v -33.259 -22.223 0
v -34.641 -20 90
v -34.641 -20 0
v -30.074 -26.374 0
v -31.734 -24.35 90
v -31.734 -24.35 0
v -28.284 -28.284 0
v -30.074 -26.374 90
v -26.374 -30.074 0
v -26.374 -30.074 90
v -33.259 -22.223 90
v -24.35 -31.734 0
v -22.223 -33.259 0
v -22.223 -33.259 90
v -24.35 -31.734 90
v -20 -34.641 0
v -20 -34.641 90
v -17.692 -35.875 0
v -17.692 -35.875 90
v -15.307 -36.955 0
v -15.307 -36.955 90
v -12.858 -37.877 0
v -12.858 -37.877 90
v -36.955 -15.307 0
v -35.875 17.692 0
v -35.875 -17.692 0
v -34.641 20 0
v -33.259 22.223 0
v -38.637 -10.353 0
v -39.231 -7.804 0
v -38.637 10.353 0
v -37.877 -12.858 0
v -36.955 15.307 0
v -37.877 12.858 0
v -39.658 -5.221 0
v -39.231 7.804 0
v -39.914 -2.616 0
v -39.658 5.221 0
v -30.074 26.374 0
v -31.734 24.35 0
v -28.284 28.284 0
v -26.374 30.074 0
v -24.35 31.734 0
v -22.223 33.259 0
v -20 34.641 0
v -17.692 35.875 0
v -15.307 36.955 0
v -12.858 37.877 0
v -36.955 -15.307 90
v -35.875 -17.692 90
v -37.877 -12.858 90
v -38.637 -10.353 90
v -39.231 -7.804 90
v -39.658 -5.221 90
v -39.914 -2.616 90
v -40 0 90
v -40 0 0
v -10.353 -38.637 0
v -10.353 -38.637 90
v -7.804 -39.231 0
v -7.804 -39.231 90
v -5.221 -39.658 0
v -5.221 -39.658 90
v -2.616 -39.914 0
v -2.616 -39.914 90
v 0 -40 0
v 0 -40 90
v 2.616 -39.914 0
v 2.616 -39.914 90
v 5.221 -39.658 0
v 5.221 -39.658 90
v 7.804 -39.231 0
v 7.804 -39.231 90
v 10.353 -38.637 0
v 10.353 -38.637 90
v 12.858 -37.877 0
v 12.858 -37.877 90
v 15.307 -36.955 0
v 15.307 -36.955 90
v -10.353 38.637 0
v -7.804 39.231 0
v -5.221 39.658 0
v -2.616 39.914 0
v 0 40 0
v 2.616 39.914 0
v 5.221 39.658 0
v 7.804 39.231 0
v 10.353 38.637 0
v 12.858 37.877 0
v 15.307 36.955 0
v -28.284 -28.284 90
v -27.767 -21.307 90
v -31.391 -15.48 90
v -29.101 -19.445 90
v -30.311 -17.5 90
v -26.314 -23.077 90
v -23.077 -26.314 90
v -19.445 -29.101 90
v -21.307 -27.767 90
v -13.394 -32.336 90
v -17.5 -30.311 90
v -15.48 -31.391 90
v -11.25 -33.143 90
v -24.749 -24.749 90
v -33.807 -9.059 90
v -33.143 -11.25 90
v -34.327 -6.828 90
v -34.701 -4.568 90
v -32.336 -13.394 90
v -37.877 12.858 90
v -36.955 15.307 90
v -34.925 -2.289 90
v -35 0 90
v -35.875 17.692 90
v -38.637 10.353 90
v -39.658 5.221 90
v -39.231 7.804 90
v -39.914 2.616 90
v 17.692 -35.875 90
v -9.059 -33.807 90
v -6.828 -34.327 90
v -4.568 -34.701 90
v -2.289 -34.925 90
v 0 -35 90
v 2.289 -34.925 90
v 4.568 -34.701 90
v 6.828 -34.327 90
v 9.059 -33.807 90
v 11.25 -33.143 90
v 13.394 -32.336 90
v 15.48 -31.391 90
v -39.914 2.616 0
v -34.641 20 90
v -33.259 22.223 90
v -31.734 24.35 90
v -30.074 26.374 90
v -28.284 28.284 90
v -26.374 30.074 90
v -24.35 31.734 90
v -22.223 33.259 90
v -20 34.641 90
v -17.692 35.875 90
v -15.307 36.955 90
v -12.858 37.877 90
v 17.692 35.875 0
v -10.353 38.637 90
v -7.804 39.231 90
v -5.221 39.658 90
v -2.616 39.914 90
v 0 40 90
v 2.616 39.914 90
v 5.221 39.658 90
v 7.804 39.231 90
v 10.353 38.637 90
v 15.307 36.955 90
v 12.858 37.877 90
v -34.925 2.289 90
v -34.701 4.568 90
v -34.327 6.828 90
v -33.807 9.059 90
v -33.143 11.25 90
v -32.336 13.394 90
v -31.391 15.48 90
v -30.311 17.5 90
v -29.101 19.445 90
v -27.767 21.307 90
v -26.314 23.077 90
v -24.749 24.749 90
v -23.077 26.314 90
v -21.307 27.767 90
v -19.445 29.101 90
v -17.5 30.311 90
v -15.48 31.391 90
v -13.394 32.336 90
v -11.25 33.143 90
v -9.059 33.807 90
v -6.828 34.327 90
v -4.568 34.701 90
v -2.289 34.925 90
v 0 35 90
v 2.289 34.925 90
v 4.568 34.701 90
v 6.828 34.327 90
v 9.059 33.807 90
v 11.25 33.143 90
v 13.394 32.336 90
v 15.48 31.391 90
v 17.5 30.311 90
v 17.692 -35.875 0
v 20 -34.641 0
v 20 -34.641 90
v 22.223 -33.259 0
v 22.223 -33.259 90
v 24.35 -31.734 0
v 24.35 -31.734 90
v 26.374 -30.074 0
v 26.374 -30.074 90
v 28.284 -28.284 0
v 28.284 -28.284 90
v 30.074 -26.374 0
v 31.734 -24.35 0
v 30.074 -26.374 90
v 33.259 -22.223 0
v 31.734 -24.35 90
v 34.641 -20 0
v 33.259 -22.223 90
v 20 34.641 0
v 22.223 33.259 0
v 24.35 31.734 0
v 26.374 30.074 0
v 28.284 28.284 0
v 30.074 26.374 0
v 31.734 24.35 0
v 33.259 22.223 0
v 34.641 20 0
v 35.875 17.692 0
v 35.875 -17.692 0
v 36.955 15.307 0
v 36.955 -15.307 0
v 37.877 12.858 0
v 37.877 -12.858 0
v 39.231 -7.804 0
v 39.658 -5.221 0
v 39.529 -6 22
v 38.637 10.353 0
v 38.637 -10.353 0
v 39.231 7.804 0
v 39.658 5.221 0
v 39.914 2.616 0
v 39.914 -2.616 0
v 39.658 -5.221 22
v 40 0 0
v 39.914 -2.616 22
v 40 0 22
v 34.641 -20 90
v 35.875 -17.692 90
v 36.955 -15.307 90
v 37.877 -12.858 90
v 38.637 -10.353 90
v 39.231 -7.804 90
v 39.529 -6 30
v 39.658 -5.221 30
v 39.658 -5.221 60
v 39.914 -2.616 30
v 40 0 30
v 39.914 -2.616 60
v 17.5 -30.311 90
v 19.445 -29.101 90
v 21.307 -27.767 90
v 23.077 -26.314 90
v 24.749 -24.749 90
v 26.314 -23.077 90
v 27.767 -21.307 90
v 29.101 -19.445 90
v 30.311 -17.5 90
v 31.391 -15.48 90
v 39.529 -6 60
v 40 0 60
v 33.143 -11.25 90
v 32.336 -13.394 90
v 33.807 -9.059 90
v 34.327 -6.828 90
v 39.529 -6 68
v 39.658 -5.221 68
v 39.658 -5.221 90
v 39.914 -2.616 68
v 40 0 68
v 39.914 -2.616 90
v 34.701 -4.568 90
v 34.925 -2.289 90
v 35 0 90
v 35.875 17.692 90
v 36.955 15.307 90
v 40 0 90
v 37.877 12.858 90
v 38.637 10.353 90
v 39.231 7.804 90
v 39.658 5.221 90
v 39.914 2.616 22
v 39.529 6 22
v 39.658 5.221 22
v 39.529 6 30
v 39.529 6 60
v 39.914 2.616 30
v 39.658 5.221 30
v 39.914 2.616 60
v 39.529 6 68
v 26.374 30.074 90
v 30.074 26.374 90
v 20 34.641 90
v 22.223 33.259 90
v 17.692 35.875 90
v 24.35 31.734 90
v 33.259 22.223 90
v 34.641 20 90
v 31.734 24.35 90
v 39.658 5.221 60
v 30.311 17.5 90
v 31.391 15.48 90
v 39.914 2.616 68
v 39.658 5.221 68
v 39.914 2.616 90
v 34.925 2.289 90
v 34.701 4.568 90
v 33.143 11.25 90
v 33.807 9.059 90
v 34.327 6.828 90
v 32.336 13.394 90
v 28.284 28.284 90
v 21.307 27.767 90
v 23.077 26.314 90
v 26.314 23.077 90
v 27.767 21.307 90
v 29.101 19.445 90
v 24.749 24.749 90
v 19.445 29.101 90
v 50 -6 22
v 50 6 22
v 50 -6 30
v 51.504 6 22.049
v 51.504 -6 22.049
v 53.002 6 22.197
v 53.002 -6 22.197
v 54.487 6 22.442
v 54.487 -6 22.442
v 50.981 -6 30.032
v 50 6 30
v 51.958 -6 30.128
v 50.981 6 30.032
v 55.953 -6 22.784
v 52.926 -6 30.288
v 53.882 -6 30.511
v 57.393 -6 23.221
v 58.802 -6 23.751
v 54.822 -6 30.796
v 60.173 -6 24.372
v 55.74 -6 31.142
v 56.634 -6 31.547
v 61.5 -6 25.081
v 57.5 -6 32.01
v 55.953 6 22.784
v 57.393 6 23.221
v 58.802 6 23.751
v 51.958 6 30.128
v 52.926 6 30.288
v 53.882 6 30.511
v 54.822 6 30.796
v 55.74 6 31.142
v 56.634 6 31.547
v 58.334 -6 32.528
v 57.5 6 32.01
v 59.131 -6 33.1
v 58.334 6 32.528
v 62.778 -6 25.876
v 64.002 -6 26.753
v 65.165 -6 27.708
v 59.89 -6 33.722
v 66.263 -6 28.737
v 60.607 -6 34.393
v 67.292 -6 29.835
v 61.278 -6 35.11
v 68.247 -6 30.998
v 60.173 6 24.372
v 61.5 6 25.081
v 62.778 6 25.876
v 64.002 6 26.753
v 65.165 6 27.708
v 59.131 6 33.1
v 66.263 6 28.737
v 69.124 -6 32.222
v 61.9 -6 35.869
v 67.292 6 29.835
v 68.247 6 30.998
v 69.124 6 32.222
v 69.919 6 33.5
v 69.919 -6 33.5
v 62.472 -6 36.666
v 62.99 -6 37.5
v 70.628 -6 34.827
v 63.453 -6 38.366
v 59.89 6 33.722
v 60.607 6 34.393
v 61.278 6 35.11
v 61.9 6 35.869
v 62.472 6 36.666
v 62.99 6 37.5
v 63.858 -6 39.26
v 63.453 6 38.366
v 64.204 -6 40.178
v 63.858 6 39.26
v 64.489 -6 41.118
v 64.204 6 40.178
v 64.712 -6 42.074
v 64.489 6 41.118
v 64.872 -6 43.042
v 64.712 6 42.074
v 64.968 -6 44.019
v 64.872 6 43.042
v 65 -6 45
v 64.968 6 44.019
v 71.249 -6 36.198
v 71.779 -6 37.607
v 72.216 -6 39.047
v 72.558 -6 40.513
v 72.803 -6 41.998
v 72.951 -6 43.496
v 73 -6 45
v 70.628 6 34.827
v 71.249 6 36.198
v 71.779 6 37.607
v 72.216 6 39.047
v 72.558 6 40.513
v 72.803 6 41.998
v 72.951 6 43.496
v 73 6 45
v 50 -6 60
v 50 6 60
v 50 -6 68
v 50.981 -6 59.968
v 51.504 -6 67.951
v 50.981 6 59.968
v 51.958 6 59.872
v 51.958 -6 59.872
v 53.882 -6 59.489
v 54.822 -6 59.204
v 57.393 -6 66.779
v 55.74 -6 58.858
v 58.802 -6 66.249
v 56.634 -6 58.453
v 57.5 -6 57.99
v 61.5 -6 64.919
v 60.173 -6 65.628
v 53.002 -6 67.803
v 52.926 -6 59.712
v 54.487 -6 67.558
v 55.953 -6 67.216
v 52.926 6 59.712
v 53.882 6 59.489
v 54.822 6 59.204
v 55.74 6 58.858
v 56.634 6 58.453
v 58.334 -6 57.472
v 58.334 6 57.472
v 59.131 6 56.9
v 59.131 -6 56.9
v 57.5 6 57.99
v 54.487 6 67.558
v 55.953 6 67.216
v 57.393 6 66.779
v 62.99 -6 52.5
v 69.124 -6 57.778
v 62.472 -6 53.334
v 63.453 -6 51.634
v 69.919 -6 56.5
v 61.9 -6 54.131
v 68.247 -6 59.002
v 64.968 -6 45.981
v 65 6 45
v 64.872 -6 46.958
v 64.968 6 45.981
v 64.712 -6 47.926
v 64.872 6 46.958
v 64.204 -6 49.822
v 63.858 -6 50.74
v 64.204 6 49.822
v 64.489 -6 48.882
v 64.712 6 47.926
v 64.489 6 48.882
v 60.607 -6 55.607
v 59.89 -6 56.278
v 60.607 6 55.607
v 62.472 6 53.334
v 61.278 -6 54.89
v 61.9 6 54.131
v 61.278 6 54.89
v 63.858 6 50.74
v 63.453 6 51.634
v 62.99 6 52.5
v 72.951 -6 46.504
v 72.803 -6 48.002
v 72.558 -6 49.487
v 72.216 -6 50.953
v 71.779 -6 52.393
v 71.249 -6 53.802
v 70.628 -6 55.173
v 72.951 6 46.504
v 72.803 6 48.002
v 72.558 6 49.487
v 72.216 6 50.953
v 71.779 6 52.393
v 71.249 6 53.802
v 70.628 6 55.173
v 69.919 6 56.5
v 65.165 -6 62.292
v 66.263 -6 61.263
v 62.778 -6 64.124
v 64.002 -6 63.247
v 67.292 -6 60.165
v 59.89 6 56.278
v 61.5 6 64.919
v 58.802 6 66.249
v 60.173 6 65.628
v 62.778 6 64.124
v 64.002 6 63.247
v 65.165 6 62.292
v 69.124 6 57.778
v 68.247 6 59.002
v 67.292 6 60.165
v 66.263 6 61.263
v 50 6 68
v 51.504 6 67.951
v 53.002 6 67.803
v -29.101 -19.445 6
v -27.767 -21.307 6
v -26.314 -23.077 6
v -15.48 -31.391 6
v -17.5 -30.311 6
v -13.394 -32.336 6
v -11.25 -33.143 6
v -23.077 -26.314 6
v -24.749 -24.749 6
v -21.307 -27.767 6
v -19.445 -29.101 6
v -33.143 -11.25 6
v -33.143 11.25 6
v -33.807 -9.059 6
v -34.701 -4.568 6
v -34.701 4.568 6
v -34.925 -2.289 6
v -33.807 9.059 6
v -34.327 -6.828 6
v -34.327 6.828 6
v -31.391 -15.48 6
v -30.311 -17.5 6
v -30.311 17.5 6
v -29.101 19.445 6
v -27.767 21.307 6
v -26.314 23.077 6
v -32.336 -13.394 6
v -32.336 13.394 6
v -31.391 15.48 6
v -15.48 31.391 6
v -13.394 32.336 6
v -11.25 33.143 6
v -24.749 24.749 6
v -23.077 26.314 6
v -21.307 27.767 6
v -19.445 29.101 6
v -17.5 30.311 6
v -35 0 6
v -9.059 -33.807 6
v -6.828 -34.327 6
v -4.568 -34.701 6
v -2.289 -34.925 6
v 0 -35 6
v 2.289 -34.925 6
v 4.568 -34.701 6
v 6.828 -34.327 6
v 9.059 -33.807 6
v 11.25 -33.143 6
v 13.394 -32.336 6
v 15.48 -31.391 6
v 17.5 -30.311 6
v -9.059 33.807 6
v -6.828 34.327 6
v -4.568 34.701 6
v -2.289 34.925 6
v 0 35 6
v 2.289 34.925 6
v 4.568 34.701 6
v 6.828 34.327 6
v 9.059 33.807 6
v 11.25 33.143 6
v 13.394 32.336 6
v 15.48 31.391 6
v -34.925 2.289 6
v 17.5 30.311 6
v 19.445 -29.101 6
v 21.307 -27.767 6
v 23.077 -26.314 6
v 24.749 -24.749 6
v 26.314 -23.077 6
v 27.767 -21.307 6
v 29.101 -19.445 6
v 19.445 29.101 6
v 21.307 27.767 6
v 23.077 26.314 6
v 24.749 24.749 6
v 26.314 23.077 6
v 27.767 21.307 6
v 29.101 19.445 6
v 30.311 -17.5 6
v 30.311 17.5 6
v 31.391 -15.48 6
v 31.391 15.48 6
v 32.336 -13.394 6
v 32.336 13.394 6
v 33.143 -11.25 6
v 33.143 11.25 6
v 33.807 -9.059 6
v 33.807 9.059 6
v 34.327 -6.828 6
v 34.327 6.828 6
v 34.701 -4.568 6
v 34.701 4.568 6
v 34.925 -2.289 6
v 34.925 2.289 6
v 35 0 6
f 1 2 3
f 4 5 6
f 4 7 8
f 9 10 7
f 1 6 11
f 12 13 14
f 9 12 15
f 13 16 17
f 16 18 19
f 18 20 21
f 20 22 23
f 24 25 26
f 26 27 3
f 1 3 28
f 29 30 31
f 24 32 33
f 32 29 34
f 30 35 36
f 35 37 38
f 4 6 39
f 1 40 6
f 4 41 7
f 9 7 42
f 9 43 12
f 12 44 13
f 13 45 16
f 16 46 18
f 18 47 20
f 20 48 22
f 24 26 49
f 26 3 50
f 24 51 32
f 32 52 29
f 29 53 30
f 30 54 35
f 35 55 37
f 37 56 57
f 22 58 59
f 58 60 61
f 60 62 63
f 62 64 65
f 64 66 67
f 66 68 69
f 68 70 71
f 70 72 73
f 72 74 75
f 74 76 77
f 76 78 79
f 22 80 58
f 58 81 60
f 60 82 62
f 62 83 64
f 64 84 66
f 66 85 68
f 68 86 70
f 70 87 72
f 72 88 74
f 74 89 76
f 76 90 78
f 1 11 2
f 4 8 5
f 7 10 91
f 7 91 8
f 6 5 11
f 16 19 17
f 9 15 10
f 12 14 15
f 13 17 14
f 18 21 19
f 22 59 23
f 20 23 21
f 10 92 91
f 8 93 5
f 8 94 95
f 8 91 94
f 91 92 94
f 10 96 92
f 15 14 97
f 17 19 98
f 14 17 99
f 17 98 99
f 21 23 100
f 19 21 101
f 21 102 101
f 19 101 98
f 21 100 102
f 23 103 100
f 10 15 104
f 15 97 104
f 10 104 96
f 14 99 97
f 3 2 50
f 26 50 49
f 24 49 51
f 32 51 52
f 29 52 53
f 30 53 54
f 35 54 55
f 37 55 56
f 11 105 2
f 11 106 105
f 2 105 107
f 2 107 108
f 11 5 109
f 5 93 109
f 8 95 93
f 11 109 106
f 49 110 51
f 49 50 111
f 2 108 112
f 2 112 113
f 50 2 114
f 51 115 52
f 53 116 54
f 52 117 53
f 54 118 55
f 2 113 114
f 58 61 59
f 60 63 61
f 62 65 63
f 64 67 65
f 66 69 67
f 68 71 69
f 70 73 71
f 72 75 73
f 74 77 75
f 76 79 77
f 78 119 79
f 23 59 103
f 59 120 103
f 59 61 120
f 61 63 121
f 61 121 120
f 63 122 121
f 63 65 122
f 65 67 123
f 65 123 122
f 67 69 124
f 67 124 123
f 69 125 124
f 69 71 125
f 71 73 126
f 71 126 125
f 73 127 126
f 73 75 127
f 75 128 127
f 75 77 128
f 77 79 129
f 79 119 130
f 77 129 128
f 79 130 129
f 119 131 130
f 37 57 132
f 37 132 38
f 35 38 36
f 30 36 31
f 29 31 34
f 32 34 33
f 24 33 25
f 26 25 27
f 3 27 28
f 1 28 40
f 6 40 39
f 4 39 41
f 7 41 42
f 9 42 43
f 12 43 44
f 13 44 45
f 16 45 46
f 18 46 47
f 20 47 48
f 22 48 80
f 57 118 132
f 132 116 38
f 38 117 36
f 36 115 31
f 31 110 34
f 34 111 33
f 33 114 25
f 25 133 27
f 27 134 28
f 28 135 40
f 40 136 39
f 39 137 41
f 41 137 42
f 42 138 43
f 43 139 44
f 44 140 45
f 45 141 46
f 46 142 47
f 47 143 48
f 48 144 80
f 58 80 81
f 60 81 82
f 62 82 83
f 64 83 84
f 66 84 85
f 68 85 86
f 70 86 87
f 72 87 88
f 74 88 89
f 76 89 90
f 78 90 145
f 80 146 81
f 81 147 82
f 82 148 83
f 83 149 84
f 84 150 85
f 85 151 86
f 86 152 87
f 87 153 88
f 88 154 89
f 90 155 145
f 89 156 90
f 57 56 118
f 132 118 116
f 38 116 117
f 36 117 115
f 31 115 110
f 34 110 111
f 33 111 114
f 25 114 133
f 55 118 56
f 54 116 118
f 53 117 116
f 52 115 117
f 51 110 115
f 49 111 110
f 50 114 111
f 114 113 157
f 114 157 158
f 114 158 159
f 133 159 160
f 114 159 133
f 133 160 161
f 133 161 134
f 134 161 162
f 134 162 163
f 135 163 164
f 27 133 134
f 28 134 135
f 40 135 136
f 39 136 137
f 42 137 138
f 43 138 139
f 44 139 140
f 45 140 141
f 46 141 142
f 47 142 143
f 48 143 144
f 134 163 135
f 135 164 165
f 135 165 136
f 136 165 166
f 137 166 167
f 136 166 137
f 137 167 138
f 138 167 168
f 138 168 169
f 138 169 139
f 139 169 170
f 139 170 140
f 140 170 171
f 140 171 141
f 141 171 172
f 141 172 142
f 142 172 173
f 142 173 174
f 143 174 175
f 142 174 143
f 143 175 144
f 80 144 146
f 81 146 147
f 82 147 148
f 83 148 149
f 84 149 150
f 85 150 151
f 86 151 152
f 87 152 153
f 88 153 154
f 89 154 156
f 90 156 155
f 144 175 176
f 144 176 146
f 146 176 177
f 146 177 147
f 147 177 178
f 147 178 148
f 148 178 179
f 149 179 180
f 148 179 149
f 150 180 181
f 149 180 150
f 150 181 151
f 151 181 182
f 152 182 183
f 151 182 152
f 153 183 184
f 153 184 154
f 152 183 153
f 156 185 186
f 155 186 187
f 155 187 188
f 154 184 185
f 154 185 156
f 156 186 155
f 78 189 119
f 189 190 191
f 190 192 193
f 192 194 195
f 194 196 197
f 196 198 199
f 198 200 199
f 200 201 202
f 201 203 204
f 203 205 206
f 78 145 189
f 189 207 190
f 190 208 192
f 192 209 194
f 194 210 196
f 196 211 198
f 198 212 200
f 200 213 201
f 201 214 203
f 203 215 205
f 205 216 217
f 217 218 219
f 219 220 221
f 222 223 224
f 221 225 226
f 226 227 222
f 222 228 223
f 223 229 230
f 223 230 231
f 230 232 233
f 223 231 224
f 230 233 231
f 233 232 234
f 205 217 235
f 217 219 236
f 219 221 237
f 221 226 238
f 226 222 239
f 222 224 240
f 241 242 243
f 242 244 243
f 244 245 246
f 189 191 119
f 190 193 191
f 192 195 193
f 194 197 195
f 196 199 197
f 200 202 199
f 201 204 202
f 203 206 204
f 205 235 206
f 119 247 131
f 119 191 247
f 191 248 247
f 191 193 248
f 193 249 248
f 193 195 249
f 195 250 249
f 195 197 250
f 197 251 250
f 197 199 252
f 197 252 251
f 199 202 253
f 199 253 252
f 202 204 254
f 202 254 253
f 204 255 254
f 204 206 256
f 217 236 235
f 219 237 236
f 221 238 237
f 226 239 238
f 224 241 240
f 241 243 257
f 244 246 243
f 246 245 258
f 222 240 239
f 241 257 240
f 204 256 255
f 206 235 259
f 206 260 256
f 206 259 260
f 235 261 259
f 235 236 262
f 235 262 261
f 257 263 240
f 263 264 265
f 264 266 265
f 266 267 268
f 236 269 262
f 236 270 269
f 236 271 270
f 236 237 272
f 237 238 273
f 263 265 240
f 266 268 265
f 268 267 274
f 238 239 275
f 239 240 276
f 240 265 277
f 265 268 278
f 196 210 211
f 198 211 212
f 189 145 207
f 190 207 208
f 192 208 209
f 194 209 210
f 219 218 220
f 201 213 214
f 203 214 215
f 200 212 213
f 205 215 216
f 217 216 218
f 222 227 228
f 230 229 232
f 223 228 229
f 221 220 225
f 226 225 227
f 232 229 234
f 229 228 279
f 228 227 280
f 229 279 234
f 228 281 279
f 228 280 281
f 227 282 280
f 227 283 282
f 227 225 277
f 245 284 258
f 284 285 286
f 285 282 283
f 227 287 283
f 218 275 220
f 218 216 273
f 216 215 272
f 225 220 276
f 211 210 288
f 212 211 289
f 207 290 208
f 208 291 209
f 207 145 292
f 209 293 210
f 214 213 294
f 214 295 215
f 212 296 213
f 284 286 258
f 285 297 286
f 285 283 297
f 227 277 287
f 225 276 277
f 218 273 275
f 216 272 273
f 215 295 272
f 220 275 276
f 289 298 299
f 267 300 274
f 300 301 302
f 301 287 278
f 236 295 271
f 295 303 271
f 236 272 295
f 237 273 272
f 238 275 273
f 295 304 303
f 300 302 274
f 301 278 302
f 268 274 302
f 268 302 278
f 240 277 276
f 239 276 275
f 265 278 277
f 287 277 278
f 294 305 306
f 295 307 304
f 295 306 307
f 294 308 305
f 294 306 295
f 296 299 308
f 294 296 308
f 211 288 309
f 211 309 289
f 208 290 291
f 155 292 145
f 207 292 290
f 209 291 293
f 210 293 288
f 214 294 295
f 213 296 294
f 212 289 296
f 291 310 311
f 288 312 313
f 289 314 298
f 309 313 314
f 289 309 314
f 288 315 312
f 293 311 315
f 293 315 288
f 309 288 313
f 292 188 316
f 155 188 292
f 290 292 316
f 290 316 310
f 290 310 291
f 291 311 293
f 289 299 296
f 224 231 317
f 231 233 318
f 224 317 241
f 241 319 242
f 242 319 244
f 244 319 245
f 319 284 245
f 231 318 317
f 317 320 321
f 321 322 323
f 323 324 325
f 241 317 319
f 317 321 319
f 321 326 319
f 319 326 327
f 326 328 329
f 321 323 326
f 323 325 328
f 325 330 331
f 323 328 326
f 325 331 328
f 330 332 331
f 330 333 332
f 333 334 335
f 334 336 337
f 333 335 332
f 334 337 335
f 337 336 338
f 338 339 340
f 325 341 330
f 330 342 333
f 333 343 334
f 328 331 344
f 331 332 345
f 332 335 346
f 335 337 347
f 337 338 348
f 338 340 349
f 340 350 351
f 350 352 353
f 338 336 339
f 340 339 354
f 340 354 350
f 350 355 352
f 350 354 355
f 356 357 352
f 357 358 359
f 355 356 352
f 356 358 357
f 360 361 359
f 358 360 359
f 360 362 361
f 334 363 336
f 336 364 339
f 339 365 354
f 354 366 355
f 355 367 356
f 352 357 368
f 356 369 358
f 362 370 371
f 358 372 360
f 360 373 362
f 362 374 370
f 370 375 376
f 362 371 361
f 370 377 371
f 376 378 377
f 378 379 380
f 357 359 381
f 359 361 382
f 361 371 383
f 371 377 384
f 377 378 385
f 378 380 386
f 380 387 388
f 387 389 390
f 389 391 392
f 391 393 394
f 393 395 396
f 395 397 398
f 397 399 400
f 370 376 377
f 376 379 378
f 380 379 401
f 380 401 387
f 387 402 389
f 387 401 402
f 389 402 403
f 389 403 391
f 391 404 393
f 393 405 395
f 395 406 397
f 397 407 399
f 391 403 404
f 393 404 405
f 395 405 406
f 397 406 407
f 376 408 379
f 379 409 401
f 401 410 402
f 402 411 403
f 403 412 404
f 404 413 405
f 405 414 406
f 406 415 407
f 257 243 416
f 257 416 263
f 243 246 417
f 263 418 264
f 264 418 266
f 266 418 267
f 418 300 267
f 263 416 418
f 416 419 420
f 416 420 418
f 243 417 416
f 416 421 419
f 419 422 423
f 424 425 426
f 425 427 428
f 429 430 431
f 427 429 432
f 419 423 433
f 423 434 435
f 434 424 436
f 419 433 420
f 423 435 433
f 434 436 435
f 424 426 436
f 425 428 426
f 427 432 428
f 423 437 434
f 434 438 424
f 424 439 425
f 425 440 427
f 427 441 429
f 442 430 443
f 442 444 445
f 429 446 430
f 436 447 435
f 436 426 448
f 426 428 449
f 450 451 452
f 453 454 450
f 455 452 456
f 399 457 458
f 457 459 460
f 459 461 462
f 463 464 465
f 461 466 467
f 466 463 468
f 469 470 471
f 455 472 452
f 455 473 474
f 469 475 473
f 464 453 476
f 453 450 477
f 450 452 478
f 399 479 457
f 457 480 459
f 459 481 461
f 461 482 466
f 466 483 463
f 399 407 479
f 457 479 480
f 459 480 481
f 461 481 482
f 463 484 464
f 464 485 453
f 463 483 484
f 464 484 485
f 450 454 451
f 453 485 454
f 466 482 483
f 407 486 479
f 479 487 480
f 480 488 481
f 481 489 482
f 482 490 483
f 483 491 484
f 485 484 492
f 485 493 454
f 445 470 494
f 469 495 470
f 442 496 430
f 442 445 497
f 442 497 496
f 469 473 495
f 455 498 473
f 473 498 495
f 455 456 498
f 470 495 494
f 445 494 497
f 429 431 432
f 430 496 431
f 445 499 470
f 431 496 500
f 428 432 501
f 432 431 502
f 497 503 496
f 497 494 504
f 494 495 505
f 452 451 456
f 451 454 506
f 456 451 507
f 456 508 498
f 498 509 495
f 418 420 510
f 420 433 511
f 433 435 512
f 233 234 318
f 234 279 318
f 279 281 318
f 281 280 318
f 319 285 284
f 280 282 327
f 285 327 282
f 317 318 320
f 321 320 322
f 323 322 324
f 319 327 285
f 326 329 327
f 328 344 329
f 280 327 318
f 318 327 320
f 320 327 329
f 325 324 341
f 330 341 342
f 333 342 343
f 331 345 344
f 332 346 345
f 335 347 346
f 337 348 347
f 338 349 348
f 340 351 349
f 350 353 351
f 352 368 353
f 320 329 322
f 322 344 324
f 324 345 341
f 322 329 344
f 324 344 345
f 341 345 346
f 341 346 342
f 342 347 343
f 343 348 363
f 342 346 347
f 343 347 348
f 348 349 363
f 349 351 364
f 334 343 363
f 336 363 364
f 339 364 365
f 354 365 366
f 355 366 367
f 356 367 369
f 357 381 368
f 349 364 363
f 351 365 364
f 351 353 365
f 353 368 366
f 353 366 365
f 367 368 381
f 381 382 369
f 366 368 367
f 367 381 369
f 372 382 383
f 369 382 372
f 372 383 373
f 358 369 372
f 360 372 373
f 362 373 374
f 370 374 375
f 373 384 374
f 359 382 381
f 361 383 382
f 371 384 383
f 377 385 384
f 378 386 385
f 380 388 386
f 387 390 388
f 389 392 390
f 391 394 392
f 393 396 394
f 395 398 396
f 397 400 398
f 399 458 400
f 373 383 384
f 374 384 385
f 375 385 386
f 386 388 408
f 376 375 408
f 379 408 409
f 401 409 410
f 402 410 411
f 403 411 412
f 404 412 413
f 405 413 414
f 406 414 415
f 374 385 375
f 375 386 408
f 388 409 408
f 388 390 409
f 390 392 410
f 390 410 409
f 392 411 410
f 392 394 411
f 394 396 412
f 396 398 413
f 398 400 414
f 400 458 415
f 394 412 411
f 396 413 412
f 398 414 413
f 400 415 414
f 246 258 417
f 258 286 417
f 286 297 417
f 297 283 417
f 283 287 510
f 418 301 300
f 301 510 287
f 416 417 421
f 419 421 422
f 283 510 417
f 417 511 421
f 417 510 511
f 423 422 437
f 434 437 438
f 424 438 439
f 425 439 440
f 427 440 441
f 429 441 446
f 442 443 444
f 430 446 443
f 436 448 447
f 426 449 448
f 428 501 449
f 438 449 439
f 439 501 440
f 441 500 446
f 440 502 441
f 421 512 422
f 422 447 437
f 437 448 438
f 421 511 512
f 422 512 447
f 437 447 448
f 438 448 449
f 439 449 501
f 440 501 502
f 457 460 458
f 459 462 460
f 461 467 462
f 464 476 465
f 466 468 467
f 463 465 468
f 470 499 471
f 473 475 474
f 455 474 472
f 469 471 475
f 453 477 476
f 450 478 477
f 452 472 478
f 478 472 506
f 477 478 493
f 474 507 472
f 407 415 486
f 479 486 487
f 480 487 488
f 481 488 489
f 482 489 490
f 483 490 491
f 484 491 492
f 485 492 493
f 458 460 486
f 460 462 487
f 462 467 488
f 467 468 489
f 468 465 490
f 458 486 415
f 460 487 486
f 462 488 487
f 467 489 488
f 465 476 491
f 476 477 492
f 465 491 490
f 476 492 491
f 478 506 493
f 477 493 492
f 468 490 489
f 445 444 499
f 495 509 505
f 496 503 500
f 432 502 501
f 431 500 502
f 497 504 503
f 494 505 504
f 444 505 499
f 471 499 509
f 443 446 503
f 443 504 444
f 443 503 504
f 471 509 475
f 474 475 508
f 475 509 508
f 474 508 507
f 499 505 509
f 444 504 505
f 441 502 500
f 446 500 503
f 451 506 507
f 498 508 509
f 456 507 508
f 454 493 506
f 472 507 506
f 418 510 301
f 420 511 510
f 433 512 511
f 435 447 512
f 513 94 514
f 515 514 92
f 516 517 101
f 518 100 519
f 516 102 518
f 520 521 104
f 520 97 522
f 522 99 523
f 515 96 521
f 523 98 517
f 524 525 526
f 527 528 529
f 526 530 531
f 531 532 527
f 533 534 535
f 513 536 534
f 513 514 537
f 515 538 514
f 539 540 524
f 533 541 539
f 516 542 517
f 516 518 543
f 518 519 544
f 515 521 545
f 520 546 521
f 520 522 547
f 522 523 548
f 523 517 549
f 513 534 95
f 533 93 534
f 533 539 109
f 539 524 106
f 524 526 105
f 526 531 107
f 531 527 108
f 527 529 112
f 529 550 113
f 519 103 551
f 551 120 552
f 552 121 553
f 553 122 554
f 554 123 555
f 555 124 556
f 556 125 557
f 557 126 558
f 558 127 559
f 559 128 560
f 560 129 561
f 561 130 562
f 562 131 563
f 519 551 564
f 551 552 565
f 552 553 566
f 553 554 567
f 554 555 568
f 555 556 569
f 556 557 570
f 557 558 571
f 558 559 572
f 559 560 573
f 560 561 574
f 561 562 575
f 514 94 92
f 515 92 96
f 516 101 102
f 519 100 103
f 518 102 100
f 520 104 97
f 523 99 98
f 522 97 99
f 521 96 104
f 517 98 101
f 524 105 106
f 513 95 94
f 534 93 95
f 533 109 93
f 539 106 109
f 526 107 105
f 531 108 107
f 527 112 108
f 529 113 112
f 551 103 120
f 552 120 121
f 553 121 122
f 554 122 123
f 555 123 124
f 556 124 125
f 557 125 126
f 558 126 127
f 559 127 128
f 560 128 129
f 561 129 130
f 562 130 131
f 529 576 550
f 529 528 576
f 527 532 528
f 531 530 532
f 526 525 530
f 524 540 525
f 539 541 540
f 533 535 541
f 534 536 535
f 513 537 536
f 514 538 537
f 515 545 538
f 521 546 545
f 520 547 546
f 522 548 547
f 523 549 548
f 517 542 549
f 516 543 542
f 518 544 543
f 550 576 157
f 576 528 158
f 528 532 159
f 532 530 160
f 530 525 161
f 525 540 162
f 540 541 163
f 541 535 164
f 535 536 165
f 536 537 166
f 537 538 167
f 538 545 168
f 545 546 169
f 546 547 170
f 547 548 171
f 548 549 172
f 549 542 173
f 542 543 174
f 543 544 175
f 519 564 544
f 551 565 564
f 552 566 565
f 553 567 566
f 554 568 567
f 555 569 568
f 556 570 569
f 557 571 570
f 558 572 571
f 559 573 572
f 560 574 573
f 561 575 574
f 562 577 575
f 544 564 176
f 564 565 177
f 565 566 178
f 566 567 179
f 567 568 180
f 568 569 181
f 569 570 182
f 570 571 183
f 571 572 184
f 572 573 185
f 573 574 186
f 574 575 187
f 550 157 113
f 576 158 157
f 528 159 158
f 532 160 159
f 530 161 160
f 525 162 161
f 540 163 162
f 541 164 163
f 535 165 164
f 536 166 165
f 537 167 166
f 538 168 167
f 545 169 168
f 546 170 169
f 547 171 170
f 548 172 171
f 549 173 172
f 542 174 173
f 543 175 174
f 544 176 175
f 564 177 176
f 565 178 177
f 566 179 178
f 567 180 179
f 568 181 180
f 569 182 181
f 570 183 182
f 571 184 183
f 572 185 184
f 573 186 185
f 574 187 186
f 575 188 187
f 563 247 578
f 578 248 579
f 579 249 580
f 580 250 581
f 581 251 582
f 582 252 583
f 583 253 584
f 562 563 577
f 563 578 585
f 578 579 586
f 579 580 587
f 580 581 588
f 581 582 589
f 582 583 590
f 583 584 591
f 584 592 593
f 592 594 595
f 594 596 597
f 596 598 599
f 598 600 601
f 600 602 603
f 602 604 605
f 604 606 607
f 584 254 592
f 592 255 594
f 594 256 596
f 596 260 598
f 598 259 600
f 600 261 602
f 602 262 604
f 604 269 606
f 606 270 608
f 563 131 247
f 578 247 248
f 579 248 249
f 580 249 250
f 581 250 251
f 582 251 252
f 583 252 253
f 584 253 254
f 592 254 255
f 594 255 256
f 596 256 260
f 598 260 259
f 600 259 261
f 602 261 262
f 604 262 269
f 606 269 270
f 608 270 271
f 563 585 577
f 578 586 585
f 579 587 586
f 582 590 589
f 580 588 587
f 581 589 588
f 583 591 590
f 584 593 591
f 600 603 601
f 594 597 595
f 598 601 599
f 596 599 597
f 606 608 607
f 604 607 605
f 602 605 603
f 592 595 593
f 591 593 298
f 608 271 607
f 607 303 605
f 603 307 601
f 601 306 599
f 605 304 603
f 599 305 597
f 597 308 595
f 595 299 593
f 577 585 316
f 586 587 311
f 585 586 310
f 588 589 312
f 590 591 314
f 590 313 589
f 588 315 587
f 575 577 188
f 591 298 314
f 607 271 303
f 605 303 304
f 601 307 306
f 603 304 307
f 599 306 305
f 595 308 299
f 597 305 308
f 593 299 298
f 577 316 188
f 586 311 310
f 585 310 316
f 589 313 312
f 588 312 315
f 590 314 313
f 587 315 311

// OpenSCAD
// ============================================================
//  マグカップ(向き固定:底面 Z=0、上向き +Z、取手は +X 方向のみ)
// ============================================================
$fn = 96;

// ---------- 本体寸法 ----------
outer_d  = 80;   // 外径
inner_d  = 70;   // 内径(肉厚 5mm)
mug_h    = 90;   // 高さ
bottom_t = 6;    // 底面の厚み

// ---------- 取手寸法 ----------
handle_inner_h = 30;        // 取手内側空間の高さ(Z 方向)
handle_inner_w = 25;        // 取手内側空間の幅(X 方向)
handle_t       = 8;         // 取手の断面太さ(XZ 面内)
handle_depth   = 12;        // 取手の奥行き(Y 方向の厚み)
handle_embed   = 4;         // 本体肉厚への埋め込み量(内側空洞には届かない)
handle_z       = mug_h / 2; // 取手中心の高さ(マグの中央)

// ------------------------------------------------------------
//  D 字 2D 形状
//   u=-back 側が直線(本体側)、+u 側が半円(外側)
//   r        : 半円の半径(= 高さの半分)
//   straight : 直線部から半円中心までの距離
//   back     : 直線側へ延ばす量(本体への埋め込み用)
// ------------------------------------------------------------
module d_shape(r, straight, back) {
    intersection() {
        union() {
            translate([-back, -r]) square([back + straight, 2 * r]);
            translate([straight, 0]) circle(r = r);
        }
        // 半円の左側はみ出しを切り落として直線にする
        translate([-back, -r - 1]) square([back + straight + r + 2, 2 * r + 2]);
    }
}

// ------------------------------------------------------------
//  取手(+X 側面に接続、断面を Y 方向へ押し出し)
// ------------------------------------------------------------
module handle() {
    r_in     = handle_inner_h / 2;        // 内側半円の半径 = 15
    straight = handle_inner_w - r_in;     // 内側直線部の長さ = 10 → 幅 25

    translate([outer_d / 2, 0, handle_z])   // 本体外周(X=40)、高さ中央へ
        rotate([90, 0, 0])                  // 2D の (u,v) → (X,Z)
            linear_extrude(height = handle_depth, center = true)
                difference() {
                    d_shape(r_in + handle_t, straight, handle_embed); // 外形
                    d_shape(r_in,            straight, handle_embed); // 内側空間
                }
}

// ------------------------------------------------------------
//  マグ本体 + 取手
//   本体と取手を union した後に内側空洞をくり抜くことで、
//   取手の埋め込み部が空洞に露出せずマニフォールドを保つ
// ------------------------------------------------------------
module mug() {
    difference() {
        union() {
            cylinder(h = mug_h, d = outer_d);   // 外筒
            handle();                           // +X 方向の取手
        }
        translate([0, 0, bottom_t])
            cylinder(h = mug_h, d = inner_d);   // 内側空洞(底厚 6mm を残す)
    }
}

mug();
